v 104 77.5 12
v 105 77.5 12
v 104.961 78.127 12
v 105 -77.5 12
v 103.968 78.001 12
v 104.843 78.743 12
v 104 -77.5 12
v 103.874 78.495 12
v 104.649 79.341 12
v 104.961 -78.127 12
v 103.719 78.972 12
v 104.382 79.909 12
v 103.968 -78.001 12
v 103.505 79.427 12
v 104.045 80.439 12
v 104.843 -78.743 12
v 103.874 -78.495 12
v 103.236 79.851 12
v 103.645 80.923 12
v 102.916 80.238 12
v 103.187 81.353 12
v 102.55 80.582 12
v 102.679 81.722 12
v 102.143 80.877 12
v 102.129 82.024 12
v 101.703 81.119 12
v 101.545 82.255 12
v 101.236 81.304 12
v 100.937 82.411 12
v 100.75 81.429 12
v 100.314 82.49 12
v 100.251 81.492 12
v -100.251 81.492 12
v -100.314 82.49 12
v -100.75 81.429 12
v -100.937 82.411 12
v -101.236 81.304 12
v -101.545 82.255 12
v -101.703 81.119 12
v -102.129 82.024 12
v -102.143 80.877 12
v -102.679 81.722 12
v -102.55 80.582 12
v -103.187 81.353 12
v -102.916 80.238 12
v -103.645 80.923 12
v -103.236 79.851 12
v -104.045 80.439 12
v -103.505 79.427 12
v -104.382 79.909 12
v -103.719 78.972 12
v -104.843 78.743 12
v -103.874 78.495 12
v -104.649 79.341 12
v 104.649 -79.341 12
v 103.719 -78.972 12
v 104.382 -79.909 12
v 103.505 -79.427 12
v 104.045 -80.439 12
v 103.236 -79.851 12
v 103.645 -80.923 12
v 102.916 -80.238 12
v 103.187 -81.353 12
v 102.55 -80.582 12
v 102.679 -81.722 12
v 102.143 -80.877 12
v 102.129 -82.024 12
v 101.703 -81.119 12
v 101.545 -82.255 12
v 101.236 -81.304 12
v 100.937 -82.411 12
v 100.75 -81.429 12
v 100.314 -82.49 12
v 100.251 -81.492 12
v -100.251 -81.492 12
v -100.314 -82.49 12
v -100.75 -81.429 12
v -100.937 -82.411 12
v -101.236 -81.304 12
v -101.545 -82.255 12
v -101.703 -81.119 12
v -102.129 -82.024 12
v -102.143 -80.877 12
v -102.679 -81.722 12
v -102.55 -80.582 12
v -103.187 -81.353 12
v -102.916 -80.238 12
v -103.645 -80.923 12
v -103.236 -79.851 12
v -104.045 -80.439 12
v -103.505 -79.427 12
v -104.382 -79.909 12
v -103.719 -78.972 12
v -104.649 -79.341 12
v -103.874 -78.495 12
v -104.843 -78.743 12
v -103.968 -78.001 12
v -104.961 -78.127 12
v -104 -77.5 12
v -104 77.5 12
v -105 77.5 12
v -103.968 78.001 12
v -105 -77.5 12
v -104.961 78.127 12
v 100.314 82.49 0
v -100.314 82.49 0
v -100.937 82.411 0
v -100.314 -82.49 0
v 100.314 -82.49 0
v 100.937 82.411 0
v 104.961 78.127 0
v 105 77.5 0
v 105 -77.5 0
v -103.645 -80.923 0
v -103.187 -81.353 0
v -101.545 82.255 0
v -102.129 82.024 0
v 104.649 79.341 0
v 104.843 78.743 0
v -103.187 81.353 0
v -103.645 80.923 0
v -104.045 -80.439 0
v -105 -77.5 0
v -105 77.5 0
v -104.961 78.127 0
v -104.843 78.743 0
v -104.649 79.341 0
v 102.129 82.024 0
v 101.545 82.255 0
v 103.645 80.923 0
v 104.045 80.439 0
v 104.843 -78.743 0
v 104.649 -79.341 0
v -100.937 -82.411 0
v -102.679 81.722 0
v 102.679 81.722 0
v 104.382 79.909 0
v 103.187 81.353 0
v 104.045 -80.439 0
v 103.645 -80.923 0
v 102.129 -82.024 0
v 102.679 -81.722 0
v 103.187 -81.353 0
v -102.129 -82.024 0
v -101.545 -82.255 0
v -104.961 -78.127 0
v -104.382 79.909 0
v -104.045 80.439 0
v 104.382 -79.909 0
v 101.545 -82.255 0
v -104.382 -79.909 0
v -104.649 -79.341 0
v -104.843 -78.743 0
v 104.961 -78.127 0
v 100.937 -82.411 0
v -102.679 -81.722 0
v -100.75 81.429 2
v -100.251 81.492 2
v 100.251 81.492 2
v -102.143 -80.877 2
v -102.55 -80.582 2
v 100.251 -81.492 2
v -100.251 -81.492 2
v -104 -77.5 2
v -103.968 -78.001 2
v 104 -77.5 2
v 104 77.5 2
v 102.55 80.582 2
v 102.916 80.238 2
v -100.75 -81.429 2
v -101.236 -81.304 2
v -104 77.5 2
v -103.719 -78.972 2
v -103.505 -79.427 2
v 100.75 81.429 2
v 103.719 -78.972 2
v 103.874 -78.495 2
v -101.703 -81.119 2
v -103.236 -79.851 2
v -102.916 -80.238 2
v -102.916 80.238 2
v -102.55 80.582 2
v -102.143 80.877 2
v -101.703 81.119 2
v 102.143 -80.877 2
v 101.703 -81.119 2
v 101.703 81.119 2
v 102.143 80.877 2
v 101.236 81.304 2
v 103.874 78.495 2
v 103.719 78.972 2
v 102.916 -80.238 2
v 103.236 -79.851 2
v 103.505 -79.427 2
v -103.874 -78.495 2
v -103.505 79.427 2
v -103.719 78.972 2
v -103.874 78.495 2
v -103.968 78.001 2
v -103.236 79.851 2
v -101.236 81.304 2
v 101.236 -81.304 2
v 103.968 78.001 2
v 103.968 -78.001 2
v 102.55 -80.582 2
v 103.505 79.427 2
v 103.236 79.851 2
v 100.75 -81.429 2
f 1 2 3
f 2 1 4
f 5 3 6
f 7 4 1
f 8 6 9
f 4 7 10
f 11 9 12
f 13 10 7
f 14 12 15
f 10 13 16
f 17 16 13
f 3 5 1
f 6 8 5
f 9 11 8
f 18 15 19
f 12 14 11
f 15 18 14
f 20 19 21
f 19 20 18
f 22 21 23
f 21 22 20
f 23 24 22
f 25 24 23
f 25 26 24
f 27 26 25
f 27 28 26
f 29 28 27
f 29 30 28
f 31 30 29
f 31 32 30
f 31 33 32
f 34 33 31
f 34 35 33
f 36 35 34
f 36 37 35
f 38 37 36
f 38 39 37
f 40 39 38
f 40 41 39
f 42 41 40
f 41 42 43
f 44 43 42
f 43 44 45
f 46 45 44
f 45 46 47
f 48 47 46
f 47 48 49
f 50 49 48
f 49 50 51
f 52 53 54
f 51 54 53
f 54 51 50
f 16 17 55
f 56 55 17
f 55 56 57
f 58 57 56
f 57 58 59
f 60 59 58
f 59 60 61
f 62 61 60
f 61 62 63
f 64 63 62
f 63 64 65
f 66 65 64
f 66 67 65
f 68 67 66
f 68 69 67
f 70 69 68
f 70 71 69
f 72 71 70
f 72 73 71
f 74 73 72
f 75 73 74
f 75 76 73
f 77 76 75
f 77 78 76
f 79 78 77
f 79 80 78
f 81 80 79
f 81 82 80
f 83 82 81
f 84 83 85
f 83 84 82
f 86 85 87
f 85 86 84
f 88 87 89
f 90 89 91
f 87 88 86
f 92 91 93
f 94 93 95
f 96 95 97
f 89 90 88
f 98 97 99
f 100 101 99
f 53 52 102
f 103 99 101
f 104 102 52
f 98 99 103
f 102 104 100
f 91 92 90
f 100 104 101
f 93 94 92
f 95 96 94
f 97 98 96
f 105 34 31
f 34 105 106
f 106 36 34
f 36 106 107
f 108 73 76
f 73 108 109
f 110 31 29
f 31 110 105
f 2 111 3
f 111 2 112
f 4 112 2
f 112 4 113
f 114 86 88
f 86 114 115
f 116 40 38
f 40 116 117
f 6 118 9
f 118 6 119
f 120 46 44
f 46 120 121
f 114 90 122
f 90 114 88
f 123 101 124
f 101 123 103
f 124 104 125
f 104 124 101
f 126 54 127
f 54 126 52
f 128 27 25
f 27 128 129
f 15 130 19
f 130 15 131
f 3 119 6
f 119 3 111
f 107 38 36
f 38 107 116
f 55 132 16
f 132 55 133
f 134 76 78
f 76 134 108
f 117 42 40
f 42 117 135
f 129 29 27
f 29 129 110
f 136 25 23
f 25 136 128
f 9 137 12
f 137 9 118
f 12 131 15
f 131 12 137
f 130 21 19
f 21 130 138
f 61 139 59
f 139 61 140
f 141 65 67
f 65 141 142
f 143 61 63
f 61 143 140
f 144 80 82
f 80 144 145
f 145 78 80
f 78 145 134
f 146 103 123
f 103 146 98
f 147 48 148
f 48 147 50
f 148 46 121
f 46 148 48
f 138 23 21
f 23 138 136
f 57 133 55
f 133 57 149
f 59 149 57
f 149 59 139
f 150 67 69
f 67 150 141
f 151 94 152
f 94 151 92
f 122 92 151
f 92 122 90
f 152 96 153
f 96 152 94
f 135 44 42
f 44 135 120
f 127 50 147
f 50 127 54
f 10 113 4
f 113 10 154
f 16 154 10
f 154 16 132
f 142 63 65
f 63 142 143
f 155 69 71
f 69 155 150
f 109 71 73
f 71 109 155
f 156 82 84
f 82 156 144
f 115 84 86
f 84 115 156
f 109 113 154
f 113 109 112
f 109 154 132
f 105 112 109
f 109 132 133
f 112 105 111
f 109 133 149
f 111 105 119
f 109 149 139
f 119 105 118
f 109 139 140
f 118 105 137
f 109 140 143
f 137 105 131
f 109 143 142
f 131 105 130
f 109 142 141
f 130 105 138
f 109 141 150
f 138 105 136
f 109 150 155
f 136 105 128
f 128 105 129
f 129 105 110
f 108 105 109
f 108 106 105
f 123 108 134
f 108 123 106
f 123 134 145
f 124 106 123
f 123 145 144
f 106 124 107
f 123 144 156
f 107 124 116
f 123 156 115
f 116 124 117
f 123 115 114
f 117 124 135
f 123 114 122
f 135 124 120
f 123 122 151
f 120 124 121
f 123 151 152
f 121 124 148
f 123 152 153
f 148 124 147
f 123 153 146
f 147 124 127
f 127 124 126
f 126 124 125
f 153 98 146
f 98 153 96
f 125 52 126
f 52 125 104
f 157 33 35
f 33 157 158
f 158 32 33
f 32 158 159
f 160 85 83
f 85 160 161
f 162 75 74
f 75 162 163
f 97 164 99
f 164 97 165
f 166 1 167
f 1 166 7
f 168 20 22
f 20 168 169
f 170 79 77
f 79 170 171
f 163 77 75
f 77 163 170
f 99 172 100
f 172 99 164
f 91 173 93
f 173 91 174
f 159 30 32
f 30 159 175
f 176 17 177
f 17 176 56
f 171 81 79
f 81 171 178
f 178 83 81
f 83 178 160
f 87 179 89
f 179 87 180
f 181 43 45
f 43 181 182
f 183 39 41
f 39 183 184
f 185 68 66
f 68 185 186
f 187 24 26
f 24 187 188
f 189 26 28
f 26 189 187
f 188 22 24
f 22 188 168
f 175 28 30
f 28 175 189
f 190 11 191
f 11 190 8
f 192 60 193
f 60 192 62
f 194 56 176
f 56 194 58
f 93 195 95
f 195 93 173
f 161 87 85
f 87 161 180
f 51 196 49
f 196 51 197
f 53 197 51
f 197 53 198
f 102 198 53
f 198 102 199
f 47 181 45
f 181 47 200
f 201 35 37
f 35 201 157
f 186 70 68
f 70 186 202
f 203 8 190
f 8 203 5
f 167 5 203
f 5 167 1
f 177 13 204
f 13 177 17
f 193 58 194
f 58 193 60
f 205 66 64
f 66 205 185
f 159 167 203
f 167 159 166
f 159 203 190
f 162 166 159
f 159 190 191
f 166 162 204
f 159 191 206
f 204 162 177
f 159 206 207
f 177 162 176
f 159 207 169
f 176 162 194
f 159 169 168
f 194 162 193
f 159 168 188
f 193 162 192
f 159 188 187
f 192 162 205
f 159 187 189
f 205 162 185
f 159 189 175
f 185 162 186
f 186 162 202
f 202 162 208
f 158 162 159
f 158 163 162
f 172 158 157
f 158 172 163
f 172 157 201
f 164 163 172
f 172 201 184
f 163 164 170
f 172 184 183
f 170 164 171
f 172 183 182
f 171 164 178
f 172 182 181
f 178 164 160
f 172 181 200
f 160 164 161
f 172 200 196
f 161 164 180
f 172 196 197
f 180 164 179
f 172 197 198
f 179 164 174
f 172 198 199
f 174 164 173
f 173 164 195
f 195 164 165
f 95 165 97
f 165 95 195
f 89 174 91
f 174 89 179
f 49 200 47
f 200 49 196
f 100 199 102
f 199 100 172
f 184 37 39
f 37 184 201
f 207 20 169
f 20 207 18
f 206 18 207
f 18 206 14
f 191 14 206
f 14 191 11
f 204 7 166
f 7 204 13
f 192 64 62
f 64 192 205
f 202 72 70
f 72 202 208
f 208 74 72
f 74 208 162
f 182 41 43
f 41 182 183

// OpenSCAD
$fn = 50;


difference() {
	union() {
		hull() {
			translate(v = [-100.0000000000, 77.5000000000, 0]) {
				cylinder(h = 12, r = 5);
			}
			translate(v = [100.0000000000, 77.5000000000, 0]) {
				cylinder(h = 12, r = 5);
			}
			translate(v = [-100.0000000000, -77.5000000000, 0]) {
				cylinder(h = 12, r = 5);
			}
			translate(v = [100.0000000000, -77.5000000000, 0]) {
				cylinder(h = 12, r = 5);
			}
		}
	}
	union() {
		translate(v = [0, 0, 2]) {
			hull() {
				translate(v = [-100.0000000000, 77.5000000000, 0]) {
					cylinder(h = 10, r = 4);
				}
				translate(v = [100.0000000000, 77.5000000000, 0]) {
					cylinder(h = 10, r = 4);
				}
				translate(v = [-100.0000000000, -77.5000000000, 0]) {
					cylinder(h = 10, r = 4);
				}
				translate(v = [100.0000000000, -77.5000000000, 0]) {
					cylinder(h = 10, r = 4);
				}
			}
		}
	}
}
